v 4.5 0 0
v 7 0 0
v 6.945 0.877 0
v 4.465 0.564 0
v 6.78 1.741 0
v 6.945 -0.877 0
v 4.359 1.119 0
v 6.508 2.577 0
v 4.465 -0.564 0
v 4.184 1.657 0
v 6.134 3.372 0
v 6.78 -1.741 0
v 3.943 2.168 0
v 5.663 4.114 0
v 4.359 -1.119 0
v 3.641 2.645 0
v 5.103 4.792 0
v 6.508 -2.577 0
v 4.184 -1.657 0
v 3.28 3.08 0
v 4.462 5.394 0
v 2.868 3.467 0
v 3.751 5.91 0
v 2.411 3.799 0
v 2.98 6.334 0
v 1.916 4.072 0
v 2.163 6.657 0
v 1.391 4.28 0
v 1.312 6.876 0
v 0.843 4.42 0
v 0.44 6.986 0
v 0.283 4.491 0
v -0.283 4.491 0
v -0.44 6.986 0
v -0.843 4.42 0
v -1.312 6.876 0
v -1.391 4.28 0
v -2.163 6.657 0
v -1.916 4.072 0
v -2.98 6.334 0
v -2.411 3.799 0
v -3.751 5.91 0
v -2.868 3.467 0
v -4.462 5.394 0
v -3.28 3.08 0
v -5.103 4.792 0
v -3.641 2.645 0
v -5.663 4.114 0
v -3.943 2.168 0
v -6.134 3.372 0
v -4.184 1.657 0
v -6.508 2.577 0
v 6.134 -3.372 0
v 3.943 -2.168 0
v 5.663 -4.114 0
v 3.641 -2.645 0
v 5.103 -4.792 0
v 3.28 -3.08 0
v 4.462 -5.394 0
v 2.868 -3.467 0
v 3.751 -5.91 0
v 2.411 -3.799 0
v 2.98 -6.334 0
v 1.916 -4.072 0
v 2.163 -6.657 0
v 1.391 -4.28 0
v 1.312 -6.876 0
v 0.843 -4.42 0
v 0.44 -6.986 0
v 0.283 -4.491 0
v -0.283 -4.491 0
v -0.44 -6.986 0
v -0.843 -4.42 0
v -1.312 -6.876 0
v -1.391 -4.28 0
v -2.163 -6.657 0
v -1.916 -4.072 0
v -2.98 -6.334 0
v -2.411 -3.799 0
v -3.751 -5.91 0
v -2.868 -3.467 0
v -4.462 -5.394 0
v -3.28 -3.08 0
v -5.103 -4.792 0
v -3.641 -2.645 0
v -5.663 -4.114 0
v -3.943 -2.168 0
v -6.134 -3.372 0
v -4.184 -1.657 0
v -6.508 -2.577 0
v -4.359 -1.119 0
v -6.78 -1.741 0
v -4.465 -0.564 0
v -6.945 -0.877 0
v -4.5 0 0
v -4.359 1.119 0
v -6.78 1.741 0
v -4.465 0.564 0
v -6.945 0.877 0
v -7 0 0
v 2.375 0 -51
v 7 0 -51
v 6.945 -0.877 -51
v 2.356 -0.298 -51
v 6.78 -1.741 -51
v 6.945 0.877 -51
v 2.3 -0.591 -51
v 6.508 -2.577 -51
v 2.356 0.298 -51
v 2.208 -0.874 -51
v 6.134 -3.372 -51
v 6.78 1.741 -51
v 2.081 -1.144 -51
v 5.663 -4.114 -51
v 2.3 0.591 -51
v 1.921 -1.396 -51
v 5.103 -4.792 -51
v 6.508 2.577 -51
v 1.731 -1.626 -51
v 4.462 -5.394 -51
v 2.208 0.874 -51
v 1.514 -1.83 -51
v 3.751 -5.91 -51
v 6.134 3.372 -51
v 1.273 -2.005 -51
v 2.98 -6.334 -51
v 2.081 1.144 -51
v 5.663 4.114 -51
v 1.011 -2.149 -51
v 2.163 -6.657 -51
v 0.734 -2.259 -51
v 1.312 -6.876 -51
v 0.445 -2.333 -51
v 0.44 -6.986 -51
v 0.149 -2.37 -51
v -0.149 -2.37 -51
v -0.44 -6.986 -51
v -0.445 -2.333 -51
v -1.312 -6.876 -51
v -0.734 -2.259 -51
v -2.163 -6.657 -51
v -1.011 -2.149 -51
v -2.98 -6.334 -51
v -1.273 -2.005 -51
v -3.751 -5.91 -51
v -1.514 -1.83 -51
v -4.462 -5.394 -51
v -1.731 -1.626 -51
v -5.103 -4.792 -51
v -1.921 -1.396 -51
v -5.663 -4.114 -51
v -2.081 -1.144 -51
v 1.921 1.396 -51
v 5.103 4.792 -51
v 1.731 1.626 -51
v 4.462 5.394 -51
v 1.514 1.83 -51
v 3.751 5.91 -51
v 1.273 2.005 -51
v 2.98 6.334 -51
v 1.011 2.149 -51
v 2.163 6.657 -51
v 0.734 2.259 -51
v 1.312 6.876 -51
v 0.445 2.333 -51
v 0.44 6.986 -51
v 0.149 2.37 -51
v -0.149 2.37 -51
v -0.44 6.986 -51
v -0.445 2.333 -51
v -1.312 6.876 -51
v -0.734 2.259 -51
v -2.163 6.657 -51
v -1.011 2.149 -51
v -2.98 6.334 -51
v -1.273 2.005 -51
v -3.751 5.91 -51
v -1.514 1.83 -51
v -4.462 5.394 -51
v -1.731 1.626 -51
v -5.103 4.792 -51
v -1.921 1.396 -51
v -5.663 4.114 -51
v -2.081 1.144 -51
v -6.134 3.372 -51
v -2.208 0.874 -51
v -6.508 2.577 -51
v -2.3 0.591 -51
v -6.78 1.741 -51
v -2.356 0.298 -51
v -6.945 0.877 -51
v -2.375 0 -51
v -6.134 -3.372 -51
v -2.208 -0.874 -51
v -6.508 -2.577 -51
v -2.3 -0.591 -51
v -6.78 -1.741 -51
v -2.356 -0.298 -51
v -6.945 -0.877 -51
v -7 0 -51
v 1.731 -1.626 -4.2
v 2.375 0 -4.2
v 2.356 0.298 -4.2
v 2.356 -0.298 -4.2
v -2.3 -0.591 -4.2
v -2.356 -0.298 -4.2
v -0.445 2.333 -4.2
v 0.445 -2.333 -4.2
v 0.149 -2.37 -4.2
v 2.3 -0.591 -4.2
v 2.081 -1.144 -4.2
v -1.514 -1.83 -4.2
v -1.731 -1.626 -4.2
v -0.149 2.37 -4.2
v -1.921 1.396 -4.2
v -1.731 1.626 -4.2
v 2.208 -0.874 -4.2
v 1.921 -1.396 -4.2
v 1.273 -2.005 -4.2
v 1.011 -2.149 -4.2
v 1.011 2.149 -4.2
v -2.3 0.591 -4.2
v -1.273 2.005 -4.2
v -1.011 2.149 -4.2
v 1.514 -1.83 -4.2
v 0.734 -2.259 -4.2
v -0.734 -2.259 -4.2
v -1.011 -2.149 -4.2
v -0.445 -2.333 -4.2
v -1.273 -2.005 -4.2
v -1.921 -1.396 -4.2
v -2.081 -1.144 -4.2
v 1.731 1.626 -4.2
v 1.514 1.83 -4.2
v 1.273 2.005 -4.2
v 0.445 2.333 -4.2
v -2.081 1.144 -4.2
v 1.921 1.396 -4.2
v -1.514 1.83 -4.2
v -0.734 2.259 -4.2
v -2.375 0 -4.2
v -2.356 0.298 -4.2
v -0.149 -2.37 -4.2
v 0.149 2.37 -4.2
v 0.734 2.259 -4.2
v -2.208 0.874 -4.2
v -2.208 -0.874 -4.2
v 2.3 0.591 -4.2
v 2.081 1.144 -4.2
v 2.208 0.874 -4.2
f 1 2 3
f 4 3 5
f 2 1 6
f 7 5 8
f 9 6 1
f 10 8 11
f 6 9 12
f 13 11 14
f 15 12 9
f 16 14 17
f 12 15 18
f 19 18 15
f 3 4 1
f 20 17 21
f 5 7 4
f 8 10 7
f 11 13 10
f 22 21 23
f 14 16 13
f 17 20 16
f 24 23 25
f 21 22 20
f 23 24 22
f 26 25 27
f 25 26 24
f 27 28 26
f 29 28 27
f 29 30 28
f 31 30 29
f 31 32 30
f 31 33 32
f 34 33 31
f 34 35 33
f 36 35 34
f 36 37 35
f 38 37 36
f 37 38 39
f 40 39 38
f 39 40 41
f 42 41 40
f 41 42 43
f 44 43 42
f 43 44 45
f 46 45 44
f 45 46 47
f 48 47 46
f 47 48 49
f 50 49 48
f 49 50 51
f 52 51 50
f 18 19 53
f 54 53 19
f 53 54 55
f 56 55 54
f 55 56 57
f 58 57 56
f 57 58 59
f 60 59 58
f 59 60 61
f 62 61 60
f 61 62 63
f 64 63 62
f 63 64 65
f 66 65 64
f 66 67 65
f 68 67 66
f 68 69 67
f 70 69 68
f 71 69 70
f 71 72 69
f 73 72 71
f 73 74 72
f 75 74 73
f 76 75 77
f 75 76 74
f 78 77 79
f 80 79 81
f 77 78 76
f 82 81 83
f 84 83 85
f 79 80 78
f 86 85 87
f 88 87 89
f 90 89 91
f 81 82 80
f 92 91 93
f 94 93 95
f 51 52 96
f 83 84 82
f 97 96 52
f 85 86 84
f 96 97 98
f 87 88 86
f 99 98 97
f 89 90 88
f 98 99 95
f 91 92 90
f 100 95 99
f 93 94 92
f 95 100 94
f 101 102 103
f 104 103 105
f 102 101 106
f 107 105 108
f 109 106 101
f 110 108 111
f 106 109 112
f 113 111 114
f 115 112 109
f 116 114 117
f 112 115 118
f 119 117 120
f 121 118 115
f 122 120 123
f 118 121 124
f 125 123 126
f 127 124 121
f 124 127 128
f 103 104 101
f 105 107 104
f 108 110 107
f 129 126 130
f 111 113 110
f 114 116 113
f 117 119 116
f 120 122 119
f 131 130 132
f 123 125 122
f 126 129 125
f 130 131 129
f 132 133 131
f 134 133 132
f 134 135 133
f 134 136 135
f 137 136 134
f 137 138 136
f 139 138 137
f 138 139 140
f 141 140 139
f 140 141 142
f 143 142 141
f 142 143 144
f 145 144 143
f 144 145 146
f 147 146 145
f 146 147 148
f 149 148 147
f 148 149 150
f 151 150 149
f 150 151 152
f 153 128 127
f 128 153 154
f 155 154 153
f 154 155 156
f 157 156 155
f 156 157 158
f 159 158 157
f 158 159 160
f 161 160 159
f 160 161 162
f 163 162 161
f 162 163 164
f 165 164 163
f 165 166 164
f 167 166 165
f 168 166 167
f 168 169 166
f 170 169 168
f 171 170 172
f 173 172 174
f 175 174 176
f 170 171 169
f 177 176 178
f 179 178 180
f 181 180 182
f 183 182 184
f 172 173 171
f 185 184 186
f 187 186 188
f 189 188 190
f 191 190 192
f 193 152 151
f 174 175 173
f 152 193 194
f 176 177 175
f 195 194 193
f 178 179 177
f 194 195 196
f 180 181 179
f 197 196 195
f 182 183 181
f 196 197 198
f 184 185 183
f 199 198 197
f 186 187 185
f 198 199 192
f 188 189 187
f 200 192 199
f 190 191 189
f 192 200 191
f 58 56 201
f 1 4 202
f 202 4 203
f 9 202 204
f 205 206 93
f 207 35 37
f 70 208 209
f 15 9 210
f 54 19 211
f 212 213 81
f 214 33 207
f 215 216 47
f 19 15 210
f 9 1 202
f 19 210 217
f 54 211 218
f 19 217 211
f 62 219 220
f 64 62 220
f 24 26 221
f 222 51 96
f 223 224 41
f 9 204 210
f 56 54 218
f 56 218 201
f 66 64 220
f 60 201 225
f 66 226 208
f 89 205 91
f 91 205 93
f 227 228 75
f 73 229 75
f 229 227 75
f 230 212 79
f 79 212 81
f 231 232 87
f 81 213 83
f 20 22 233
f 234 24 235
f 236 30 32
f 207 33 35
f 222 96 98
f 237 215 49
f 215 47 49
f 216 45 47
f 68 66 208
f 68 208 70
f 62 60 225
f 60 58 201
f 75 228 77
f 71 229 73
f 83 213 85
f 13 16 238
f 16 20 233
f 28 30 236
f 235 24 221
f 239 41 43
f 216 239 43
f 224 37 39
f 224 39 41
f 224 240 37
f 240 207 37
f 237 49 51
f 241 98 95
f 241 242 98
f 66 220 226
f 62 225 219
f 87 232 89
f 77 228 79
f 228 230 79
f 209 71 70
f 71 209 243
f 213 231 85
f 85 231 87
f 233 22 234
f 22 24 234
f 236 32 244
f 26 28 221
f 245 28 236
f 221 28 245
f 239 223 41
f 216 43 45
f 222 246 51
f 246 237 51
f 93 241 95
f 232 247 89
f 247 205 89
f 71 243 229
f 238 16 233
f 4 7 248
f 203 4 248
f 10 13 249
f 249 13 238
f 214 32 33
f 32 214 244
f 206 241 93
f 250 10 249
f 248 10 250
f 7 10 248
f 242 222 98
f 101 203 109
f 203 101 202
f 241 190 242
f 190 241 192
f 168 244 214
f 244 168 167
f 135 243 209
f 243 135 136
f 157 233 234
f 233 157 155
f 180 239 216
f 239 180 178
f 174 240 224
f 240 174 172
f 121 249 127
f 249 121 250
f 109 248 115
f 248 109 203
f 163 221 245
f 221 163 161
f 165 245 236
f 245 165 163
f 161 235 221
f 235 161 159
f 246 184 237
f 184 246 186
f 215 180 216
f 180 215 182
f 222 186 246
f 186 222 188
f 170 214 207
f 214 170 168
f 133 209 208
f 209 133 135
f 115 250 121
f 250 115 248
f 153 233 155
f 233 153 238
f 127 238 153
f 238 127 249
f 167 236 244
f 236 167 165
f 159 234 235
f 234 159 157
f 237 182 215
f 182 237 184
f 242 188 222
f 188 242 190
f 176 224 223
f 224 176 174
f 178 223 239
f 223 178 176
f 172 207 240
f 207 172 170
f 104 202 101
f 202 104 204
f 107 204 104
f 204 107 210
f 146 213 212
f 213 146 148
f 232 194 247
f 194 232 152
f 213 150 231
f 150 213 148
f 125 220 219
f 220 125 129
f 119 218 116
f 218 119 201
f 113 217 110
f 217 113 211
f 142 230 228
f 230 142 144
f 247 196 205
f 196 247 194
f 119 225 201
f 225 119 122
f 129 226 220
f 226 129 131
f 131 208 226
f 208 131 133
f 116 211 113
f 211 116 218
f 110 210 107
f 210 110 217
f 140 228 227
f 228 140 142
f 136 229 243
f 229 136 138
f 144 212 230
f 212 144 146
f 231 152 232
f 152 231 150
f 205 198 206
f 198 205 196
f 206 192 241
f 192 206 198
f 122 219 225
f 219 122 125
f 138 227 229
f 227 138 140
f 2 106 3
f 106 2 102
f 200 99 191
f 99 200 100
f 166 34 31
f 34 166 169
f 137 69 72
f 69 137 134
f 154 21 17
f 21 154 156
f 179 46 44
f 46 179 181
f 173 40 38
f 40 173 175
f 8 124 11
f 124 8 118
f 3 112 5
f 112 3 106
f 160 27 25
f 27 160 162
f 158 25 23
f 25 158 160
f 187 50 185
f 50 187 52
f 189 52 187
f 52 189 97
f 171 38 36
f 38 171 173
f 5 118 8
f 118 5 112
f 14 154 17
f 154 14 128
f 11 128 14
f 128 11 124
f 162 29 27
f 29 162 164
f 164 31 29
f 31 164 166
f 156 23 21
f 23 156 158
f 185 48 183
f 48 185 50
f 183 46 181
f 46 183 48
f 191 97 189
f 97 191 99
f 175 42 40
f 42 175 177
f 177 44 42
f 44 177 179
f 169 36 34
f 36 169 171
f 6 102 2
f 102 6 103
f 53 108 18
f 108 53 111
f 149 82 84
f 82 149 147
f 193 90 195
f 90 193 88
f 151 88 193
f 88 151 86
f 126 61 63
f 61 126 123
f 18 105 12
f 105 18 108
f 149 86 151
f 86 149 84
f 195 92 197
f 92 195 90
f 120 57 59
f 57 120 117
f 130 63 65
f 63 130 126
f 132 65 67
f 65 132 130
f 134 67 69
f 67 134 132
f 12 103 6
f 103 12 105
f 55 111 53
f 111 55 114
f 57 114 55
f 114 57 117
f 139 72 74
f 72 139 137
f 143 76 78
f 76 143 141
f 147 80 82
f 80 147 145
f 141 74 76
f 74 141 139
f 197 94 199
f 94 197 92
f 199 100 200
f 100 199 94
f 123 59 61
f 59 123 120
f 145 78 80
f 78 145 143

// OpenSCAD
$fn = 50;


difference() {
	union() {
		translate(v = [0, 0, -51.0000000000]) {
			cylinder(h = 51, r = 7.0000000000);
		}
		cylinder(h = 0, r = 17.0000000000);
	}
	union() {
		translate(v = [0, 0, 0]) {
			rotate(a = [0, 0, 0]) {
				difference() {
					union() {
						#translate(v = [0, 0, -51.0000000000]) {
							cylinder(h = 51, r = 2.2500000000);
						}
						#translate(v = [0, 0, -4.2000000000]) {
							cylinder(h = 4.2000000000, r = 7.0000000000, r1 = 2.3750000000, r2 = 4.5000000000);
						}
						#translate(v = [0, 0, -51.0000000000]) {
							cylinder(h = 51, r = 2.3750000000);
						}
						#translate(v = [0, 0, -51.0000000000]) {
							cylinder(h = 51, r = 2.2500000000);
						}
					}
					union();
				}
			}
		}
	}
}
